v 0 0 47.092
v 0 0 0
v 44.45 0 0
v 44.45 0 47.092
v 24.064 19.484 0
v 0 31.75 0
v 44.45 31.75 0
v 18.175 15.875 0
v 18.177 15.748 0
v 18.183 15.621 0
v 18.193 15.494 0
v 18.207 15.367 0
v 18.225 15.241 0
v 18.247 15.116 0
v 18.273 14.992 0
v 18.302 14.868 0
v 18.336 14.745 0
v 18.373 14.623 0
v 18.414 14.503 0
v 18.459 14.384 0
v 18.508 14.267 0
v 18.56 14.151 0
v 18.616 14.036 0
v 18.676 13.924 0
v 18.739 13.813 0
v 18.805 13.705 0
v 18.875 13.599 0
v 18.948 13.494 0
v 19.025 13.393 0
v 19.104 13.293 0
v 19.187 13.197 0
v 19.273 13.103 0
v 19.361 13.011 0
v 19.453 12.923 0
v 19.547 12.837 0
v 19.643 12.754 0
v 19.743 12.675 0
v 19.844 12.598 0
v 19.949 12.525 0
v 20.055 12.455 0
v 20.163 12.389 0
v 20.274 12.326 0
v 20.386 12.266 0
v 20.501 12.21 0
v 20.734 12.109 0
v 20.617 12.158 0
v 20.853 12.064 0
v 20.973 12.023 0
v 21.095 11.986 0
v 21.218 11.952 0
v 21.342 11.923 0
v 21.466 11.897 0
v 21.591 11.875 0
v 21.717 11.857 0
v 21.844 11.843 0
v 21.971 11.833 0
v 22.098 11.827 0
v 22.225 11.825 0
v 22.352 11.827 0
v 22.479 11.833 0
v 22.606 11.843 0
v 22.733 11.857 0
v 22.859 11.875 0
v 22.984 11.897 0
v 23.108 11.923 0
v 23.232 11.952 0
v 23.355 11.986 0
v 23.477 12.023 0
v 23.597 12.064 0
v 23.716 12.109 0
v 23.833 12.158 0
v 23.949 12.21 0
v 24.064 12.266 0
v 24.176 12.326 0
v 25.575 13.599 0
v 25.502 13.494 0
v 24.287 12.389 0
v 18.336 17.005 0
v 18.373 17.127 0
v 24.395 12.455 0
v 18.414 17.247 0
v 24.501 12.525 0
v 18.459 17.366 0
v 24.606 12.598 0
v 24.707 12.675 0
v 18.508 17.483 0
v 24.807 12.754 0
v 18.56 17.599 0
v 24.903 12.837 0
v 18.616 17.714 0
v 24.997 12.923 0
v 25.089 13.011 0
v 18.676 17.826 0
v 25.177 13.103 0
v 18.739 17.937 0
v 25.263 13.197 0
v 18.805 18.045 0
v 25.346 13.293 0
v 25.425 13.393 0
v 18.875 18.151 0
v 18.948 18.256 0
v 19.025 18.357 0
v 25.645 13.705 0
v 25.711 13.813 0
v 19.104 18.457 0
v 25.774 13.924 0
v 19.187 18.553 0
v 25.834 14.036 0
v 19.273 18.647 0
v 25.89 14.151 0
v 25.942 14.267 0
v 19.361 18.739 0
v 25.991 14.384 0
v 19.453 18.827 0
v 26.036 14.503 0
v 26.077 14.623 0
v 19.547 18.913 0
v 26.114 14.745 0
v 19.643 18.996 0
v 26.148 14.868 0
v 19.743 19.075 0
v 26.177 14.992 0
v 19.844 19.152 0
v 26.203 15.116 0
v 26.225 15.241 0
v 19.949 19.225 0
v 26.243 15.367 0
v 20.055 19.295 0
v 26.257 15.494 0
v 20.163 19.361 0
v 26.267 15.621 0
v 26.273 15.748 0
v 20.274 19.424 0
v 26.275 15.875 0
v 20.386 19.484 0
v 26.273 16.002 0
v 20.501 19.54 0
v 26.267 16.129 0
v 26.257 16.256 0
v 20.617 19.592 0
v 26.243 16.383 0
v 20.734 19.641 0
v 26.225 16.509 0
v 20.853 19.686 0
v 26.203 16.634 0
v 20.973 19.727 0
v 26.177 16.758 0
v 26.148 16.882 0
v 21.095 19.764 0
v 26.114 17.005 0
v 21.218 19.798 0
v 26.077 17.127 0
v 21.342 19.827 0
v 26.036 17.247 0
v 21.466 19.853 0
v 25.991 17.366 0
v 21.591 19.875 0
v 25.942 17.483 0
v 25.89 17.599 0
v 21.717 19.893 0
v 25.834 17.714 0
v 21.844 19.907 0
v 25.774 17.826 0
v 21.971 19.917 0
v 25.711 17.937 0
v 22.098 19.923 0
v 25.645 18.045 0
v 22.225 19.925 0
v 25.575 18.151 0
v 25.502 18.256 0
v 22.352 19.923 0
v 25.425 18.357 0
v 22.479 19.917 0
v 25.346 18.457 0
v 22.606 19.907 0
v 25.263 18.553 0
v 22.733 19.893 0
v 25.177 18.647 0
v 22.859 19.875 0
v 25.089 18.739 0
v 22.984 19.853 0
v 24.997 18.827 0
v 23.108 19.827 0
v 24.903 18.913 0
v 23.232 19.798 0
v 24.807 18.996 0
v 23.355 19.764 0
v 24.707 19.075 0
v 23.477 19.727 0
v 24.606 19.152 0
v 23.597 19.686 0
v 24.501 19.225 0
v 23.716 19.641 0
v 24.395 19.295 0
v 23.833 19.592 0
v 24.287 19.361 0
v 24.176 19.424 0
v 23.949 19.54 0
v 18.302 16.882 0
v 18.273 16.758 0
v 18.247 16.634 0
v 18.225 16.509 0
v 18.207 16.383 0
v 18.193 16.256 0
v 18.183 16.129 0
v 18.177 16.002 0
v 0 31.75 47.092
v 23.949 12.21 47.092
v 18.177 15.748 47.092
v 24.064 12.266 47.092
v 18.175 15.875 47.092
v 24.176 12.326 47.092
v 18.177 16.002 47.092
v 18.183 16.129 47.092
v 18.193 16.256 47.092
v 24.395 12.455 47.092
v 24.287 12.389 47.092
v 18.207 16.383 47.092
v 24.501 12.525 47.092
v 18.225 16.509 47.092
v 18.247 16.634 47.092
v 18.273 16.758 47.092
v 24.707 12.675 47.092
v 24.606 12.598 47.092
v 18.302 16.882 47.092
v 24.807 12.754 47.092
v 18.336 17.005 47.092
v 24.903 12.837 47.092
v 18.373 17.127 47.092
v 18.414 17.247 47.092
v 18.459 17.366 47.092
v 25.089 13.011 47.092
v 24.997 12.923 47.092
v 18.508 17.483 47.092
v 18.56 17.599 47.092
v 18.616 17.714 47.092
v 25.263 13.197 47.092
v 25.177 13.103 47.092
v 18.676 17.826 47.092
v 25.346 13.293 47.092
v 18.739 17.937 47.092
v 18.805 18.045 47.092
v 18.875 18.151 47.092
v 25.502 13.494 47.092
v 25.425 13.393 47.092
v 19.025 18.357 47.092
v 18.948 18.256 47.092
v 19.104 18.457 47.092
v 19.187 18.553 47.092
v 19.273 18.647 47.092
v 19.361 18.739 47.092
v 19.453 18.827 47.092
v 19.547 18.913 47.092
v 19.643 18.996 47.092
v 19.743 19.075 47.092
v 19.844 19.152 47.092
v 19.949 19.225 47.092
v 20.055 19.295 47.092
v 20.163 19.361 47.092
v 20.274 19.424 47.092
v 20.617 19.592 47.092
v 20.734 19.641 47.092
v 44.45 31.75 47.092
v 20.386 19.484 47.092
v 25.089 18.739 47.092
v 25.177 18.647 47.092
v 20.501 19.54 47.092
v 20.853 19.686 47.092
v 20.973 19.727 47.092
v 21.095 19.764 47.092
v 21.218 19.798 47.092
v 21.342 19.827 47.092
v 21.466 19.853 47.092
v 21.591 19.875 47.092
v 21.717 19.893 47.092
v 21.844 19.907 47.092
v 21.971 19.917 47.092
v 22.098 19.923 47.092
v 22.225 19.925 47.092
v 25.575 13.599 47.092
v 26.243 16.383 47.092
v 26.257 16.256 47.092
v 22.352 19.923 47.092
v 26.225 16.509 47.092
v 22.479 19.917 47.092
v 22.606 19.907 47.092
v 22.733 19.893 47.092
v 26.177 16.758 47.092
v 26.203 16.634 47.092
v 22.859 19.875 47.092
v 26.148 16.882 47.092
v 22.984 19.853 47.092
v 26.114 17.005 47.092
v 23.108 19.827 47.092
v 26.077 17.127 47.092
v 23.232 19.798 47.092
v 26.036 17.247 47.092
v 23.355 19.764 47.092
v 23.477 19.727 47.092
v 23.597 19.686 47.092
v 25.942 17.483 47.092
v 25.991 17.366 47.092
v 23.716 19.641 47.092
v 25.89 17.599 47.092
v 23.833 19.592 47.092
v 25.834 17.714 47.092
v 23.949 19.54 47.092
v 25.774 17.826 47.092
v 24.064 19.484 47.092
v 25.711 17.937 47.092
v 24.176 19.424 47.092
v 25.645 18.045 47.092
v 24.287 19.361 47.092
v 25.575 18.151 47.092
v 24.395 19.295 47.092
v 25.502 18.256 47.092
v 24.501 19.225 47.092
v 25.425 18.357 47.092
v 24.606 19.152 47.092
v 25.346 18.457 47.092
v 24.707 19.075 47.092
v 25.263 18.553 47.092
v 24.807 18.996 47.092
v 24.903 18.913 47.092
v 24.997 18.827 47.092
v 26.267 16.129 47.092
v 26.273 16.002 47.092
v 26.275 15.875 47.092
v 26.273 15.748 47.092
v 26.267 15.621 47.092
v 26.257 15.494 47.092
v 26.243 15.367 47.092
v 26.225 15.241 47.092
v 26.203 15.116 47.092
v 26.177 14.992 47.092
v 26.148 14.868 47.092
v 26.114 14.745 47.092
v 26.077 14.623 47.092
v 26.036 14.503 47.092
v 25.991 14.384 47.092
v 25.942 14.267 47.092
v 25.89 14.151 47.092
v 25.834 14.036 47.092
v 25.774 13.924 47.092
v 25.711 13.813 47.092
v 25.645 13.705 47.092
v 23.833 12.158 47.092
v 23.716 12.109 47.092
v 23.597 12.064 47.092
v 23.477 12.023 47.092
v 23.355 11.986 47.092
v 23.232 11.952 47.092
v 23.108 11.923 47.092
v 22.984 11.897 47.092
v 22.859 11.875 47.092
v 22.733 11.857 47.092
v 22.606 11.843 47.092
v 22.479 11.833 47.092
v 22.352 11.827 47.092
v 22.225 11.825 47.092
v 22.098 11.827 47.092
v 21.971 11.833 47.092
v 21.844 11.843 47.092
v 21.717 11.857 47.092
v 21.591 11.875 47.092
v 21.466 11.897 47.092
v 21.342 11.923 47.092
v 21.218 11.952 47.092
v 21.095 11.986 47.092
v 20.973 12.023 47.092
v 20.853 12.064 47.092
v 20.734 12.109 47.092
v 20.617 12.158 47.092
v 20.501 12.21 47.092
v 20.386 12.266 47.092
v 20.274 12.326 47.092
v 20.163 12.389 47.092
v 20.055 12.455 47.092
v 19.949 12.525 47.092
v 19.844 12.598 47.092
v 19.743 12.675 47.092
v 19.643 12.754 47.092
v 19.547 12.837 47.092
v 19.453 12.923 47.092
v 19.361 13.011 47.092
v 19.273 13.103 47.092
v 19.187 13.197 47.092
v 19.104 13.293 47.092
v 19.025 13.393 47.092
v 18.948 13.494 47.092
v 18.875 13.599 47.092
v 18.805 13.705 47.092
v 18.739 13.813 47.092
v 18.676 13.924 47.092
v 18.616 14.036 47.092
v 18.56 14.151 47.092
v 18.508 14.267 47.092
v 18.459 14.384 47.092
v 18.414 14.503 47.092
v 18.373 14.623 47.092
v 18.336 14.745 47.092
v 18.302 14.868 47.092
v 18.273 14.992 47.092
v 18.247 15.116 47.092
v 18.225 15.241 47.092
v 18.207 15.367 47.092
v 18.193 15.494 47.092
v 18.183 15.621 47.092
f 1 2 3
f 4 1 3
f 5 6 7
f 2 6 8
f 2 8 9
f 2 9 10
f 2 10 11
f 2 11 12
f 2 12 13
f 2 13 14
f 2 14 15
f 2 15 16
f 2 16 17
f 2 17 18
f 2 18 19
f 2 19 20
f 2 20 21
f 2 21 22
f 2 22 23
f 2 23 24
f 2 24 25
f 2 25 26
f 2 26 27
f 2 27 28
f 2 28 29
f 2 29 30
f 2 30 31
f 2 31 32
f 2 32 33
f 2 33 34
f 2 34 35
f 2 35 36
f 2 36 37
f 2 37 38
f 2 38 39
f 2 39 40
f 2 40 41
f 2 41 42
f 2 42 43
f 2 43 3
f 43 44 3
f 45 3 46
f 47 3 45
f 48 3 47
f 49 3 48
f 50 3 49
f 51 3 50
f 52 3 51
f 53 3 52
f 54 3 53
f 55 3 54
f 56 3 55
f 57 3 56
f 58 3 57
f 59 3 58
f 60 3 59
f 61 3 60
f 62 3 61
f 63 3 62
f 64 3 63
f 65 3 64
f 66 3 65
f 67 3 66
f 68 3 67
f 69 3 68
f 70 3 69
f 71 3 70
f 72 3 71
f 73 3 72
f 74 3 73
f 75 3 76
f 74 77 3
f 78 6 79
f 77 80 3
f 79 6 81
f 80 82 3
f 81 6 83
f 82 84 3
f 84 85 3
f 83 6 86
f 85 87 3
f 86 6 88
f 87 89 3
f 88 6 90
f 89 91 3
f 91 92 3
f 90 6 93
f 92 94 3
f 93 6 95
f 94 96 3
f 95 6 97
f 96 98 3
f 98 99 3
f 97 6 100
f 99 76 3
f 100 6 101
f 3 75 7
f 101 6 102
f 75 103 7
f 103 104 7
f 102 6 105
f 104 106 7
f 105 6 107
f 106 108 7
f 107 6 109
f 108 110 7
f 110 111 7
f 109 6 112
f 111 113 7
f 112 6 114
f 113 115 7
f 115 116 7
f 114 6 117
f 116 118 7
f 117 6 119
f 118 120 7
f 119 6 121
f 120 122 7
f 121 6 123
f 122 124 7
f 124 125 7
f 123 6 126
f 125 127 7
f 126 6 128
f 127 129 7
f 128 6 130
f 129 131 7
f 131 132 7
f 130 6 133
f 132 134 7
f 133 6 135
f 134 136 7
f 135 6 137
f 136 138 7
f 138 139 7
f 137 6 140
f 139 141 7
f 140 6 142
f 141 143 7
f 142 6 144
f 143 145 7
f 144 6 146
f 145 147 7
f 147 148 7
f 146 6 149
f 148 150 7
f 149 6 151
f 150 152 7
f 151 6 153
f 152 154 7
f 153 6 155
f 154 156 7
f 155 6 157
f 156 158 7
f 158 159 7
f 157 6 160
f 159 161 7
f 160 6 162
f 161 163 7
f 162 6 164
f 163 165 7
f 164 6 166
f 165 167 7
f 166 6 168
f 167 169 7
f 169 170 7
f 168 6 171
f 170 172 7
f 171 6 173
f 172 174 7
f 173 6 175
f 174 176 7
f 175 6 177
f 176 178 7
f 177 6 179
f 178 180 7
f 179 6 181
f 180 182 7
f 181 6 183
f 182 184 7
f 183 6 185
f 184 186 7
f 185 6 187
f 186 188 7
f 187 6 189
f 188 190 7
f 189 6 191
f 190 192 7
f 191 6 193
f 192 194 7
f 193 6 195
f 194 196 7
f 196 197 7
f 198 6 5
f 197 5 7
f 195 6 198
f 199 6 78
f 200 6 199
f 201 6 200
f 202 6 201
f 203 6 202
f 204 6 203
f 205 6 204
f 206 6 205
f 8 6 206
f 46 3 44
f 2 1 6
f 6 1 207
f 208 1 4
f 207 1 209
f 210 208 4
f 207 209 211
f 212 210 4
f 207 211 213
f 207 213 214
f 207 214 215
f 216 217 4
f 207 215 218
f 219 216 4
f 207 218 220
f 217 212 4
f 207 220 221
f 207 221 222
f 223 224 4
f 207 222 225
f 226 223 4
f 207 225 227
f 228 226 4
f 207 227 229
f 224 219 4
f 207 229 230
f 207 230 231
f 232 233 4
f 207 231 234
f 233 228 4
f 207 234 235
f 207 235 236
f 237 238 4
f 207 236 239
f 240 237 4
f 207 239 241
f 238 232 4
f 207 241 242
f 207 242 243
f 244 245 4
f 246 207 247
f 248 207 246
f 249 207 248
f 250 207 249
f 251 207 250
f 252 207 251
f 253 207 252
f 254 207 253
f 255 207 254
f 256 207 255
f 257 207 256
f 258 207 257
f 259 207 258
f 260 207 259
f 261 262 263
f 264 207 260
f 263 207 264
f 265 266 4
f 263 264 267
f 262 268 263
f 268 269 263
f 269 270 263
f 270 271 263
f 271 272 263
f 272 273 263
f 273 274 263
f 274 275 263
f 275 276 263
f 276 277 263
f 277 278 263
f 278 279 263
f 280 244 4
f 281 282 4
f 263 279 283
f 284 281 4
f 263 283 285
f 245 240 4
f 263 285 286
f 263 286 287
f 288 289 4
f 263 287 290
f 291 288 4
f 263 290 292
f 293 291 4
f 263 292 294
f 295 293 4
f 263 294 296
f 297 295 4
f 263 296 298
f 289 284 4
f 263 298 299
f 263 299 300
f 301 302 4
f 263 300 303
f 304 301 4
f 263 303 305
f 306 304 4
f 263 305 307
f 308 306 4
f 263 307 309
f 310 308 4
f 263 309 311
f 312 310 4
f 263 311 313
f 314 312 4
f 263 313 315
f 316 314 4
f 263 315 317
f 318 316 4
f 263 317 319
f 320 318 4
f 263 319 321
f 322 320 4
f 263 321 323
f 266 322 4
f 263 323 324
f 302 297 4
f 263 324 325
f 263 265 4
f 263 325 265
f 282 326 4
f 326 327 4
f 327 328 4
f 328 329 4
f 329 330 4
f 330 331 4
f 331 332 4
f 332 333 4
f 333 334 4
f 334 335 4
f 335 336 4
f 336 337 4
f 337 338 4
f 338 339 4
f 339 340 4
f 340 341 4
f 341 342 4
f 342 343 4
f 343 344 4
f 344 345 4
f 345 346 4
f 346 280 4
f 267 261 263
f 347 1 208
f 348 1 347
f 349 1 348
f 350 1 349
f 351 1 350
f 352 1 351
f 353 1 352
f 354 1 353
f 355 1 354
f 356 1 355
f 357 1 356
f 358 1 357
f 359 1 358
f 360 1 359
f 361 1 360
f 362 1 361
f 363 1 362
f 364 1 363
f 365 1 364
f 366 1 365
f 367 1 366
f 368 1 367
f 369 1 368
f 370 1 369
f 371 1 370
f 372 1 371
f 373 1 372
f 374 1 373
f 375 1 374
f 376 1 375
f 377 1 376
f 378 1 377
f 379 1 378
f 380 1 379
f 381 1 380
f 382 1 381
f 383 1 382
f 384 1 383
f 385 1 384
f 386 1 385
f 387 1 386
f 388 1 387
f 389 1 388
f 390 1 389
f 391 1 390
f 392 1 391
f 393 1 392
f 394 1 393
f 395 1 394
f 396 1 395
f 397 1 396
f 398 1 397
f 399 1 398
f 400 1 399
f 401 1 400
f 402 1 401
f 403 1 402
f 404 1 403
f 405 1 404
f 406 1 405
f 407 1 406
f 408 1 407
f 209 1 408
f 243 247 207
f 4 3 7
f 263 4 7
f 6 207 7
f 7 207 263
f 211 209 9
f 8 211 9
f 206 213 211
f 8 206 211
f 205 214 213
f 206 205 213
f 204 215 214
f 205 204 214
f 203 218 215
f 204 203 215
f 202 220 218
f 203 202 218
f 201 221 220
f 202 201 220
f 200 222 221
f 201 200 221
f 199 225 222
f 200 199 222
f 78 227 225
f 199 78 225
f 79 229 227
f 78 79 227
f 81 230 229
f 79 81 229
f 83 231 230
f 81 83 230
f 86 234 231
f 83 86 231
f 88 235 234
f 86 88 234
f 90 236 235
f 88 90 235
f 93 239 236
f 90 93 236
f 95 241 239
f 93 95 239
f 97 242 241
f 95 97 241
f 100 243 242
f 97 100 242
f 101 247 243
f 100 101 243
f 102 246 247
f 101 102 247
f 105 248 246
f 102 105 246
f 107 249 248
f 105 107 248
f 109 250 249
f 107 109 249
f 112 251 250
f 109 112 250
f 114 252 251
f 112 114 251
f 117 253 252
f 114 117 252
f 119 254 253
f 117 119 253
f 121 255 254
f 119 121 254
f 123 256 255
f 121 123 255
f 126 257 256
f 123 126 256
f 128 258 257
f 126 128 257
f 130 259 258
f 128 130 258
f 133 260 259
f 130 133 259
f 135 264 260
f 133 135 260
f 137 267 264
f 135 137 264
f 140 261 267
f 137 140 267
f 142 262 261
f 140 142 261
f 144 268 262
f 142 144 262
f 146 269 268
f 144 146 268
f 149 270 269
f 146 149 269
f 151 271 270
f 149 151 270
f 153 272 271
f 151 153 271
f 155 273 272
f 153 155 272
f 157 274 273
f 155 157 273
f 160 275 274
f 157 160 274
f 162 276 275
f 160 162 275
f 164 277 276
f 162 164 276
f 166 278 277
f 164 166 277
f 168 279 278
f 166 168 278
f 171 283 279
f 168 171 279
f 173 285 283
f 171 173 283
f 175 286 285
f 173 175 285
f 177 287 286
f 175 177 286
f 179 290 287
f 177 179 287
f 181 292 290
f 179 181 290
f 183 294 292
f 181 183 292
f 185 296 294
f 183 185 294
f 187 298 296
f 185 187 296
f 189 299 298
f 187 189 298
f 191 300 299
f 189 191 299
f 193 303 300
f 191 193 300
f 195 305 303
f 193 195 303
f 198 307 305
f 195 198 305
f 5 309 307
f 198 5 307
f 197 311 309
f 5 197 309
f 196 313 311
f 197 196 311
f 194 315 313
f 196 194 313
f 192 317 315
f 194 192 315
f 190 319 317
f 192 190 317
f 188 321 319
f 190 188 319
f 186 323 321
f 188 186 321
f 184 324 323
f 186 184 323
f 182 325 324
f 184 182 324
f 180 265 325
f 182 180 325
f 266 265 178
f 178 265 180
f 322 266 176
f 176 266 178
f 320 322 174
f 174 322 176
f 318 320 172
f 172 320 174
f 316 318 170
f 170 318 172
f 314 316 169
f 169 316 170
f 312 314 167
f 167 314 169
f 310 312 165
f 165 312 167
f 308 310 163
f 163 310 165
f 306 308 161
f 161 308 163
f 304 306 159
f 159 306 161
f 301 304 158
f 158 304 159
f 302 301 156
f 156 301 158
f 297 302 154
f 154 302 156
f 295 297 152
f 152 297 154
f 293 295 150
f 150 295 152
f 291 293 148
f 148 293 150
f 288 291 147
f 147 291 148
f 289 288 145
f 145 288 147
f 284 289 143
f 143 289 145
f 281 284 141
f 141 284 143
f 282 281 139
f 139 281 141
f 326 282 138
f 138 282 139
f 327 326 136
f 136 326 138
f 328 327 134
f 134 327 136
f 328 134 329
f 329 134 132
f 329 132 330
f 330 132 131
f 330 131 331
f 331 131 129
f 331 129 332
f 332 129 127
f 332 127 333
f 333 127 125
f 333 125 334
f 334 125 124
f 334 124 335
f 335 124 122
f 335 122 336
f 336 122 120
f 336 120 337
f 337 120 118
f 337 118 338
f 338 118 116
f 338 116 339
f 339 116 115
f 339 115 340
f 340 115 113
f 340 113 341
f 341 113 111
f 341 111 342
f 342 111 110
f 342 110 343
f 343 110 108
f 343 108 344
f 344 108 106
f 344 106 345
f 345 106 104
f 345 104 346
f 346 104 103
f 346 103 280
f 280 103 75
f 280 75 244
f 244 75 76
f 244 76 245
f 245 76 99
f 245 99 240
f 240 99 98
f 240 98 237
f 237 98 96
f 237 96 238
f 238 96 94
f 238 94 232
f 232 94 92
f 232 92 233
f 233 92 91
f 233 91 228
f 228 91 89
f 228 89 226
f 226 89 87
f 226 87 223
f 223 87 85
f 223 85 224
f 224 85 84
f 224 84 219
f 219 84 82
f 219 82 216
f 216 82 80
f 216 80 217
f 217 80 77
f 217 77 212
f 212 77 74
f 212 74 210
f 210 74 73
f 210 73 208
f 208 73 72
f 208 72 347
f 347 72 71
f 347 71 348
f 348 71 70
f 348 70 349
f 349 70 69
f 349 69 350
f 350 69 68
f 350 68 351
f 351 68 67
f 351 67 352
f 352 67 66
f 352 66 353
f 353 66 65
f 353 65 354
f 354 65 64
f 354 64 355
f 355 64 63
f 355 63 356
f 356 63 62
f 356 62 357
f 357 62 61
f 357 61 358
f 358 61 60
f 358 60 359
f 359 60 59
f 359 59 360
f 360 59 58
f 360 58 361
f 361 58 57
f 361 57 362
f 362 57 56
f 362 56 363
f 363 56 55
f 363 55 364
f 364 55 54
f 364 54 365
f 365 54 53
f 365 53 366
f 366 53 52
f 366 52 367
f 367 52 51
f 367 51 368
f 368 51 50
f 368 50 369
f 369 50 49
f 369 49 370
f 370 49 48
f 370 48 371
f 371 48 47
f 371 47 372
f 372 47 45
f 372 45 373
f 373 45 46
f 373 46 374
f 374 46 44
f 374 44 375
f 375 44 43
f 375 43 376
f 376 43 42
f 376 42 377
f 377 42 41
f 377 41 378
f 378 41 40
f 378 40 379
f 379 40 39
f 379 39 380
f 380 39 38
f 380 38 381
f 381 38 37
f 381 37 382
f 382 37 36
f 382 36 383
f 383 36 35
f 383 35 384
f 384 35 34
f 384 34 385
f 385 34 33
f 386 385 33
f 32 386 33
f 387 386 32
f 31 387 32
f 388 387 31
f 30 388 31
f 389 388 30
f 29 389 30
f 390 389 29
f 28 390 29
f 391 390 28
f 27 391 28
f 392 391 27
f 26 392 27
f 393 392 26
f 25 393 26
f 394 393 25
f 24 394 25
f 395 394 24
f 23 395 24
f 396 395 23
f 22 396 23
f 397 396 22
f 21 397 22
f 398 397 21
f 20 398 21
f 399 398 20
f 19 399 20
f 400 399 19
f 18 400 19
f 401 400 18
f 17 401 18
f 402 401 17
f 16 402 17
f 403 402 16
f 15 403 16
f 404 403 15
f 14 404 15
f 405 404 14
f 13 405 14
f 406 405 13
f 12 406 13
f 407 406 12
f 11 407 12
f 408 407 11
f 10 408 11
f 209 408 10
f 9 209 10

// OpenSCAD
width = 25.4 * 1.75;
depth = 25.4 * 1.25;
height = 1.854 * 25.4;
bolt = 8.1;

#difference()
{
linear_extrude(height = height )
{
	polygon(points=[[0, 0],[width, 0],[width, depth], [0, depth]]);

}

linear_extrude(height = height)
{
	translate([width/2, depth/2,0])
	{
		circle($fn = 200, r = bolt/2);
	}
}
}
